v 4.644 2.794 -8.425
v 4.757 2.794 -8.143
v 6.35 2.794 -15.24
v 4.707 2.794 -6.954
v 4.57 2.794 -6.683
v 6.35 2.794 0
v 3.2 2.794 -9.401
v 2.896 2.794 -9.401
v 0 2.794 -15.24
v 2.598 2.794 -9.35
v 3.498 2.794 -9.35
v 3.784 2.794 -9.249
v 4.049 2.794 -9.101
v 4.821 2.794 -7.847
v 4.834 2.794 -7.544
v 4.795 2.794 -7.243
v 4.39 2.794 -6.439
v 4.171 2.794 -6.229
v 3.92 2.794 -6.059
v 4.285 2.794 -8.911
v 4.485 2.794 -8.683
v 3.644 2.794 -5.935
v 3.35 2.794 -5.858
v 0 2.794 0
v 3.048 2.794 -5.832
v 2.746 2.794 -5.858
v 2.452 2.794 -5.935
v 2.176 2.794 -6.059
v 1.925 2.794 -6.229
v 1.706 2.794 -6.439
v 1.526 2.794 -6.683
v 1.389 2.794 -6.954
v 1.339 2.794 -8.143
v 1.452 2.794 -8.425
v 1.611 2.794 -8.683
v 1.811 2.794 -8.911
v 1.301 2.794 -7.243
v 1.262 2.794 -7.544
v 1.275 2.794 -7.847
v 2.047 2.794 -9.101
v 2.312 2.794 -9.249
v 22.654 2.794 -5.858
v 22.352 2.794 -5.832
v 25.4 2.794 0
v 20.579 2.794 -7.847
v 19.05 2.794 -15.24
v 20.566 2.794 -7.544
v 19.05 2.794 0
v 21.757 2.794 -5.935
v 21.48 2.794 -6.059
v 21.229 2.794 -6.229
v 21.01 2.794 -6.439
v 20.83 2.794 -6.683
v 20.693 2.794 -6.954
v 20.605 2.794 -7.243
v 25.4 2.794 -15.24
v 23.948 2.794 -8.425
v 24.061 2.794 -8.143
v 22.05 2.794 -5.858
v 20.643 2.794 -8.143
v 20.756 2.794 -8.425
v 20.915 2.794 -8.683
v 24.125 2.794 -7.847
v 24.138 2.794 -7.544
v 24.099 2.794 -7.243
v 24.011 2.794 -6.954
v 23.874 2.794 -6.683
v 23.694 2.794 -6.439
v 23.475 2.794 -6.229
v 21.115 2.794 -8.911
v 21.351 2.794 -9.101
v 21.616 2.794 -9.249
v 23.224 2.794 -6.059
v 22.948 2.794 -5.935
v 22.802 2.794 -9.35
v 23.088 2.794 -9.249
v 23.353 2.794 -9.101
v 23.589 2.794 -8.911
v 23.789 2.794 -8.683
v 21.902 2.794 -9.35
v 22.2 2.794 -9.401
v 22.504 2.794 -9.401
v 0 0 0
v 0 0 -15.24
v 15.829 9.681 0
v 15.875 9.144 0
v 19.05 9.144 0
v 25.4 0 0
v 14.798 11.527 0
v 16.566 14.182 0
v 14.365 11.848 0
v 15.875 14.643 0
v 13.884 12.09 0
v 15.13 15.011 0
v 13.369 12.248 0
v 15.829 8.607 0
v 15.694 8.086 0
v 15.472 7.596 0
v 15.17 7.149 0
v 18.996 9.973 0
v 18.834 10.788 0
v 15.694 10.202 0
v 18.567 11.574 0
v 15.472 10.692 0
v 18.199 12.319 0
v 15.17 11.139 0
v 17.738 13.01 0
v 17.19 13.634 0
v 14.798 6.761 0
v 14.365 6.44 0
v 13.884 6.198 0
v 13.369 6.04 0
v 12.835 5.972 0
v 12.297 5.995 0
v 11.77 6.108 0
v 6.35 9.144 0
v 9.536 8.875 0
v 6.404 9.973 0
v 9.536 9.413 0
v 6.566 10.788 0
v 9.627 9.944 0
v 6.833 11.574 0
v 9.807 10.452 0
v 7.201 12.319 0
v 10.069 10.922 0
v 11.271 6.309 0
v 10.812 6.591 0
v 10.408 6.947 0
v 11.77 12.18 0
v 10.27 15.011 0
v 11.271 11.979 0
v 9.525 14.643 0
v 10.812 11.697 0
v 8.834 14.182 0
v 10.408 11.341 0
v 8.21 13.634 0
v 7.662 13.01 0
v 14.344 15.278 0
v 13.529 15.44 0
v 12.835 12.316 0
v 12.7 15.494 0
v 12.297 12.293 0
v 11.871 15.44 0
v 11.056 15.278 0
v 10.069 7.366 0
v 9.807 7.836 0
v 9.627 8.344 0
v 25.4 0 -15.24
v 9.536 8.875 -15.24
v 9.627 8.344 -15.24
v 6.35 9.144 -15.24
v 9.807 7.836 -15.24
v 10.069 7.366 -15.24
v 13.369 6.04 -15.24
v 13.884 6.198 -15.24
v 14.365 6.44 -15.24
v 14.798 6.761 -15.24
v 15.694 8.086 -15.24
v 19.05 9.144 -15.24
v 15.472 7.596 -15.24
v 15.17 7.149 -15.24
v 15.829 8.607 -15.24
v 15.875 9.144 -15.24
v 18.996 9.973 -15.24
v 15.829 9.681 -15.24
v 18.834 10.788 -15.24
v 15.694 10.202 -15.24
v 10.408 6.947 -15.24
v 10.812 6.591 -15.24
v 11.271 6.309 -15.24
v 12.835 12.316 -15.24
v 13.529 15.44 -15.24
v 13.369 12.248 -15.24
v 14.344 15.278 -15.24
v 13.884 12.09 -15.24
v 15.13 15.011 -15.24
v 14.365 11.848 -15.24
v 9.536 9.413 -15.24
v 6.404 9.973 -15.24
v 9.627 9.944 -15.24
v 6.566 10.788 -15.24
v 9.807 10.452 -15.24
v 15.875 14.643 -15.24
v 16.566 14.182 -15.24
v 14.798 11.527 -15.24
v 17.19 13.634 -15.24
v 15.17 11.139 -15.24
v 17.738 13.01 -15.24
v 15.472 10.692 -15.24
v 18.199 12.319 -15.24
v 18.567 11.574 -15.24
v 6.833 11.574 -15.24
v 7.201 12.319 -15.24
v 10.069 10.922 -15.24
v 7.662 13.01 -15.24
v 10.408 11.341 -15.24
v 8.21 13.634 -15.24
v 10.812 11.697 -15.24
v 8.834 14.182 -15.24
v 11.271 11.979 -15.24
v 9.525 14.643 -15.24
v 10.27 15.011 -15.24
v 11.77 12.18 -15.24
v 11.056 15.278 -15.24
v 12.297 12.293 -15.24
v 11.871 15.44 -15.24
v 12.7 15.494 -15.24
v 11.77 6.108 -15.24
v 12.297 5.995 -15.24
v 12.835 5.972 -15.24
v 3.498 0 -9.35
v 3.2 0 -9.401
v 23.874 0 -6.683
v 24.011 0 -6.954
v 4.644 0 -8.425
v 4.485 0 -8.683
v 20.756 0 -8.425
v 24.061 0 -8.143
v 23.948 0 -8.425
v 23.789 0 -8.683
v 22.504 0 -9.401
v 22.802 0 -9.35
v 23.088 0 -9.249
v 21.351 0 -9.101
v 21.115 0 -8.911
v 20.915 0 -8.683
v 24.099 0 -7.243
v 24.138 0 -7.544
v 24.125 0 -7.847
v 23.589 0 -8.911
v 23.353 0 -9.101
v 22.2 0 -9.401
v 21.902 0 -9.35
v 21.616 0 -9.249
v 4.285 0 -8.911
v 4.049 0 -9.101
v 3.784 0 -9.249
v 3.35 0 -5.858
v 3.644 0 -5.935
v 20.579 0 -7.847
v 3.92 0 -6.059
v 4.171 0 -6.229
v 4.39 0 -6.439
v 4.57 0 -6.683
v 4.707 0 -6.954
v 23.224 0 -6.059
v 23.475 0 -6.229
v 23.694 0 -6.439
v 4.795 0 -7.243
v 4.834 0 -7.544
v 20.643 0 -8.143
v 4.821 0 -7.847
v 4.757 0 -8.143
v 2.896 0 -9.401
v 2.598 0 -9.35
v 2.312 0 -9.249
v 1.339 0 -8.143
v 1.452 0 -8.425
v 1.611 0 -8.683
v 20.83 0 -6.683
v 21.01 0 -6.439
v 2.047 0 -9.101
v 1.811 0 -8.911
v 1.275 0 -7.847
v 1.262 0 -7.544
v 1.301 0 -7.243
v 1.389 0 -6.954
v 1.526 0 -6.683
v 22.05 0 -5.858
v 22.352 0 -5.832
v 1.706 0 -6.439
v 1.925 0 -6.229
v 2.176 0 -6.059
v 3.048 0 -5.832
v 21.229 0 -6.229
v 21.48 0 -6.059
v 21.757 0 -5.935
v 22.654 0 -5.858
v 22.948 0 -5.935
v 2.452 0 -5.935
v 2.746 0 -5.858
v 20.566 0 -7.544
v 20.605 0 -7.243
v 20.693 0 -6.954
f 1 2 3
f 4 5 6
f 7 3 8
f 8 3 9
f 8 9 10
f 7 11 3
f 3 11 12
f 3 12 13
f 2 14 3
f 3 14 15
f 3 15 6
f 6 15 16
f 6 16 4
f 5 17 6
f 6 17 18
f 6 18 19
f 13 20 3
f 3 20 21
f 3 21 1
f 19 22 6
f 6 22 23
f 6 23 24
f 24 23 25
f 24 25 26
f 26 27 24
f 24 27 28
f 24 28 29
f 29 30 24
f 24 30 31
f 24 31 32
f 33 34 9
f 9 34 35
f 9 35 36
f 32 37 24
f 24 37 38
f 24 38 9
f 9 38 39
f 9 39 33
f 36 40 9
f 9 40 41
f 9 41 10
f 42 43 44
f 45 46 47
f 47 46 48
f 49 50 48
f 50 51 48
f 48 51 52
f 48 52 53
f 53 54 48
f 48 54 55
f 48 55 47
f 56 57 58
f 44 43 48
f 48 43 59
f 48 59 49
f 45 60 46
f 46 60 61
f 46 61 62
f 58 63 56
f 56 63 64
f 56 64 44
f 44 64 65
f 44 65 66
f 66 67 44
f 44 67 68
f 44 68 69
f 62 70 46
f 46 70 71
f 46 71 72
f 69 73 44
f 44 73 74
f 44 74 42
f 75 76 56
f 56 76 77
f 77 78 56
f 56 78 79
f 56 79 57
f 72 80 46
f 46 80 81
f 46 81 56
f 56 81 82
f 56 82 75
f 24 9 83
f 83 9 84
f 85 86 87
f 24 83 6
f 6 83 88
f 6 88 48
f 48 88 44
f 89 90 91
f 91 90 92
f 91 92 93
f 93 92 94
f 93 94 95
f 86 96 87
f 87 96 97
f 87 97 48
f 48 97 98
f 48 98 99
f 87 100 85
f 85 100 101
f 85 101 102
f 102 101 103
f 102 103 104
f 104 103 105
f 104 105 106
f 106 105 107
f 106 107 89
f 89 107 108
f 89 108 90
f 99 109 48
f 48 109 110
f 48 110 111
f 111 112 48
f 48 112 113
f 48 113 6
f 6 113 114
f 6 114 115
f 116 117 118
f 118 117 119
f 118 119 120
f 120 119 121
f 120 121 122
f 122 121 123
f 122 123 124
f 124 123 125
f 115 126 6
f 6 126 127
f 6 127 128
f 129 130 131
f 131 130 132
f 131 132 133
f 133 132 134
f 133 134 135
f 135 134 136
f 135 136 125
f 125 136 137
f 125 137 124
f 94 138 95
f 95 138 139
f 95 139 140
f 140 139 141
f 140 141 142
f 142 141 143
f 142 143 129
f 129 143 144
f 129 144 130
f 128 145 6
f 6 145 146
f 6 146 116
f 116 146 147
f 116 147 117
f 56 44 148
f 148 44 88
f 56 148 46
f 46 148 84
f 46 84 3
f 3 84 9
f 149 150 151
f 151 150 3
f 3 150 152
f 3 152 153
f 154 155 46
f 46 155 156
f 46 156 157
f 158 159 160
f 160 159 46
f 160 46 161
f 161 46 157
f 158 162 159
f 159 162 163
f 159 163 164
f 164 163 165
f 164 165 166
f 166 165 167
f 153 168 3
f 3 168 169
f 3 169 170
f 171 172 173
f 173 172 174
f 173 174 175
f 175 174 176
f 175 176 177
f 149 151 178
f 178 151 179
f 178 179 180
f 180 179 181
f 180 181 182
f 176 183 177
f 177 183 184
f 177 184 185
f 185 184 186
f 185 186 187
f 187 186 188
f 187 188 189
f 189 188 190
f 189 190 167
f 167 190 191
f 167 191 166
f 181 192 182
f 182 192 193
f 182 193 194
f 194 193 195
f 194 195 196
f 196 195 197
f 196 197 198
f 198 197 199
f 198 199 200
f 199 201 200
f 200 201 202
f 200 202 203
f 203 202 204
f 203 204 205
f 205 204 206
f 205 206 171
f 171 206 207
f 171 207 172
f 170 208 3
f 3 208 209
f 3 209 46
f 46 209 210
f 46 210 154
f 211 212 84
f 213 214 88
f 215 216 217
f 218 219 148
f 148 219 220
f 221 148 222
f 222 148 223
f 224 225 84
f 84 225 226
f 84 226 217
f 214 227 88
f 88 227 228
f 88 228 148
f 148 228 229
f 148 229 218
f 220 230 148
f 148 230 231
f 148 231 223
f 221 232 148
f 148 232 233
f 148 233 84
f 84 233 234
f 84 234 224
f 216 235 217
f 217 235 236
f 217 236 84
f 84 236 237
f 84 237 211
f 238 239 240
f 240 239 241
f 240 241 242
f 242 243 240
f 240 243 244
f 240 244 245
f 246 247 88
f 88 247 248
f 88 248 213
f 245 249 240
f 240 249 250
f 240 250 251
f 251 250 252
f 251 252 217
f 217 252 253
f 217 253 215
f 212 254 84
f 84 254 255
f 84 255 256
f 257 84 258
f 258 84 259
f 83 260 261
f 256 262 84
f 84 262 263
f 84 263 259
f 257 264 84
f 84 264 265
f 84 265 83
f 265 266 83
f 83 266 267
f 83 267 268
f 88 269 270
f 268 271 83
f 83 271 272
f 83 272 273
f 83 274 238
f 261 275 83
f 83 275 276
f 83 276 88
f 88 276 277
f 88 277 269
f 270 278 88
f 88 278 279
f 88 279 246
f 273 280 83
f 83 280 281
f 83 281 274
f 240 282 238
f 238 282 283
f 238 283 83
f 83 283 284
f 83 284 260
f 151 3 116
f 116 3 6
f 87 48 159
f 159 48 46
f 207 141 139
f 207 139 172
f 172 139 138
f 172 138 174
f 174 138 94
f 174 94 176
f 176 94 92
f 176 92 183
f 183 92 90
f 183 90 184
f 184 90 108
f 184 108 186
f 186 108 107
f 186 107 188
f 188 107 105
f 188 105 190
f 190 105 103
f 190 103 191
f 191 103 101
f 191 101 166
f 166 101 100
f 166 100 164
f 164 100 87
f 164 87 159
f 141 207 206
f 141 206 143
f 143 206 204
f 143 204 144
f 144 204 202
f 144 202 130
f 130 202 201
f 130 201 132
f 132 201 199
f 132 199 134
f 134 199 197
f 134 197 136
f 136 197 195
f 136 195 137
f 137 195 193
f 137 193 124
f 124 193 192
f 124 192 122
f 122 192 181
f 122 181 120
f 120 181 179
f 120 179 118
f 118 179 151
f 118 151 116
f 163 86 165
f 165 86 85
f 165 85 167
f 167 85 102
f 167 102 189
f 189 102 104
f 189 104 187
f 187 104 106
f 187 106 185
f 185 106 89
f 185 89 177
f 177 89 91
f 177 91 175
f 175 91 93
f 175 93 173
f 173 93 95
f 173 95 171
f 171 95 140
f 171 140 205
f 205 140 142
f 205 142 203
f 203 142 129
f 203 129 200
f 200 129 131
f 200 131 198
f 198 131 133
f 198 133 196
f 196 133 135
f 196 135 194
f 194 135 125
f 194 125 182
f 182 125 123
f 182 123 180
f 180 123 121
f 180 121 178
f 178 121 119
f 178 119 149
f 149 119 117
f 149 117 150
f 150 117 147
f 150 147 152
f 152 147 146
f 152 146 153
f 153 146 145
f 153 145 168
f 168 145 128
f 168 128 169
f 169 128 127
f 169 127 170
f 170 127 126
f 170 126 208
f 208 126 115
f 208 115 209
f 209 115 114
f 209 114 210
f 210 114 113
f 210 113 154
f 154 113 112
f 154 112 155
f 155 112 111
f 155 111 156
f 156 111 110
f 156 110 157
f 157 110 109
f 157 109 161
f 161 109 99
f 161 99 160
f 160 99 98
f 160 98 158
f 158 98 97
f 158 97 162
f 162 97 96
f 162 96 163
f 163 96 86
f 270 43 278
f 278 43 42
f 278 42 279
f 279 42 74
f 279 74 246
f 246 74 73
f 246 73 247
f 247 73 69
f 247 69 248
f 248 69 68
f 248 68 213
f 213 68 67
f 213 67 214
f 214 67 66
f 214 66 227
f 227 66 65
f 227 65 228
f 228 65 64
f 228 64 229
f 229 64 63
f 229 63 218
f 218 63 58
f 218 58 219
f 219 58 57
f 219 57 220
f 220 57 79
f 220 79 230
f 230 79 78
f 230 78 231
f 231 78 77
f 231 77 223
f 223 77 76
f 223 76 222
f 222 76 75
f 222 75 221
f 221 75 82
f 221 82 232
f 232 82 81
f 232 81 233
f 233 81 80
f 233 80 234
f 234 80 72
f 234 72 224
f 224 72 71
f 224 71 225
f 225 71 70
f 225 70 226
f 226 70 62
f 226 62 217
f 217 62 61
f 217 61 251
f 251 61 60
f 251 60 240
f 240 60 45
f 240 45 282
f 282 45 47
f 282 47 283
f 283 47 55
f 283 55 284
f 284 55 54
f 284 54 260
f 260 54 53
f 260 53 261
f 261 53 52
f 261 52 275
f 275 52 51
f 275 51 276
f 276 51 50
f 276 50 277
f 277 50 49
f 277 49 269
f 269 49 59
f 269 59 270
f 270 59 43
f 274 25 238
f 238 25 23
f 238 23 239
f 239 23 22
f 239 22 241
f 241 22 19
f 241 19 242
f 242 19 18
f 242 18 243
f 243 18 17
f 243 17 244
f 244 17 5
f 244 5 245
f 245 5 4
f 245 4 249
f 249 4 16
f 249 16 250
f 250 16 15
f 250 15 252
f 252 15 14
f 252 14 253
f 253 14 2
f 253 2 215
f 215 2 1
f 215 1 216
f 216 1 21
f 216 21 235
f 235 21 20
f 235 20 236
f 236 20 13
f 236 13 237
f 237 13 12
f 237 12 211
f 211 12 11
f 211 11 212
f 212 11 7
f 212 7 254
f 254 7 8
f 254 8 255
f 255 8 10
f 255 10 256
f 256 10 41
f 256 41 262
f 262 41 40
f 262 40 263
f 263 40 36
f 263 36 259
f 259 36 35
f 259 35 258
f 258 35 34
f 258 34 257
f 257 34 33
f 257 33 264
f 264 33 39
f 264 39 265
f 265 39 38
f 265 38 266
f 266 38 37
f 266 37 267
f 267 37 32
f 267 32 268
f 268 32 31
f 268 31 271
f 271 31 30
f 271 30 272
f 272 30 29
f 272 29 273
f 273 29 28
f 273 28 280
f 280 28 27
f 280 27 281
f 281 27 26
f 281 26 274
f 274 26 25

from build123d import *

# Parameters (mm, degrees)
SKETCH1_W           = 25.4
SKETCH1_H           = 15.24
BOSS_EXTRUDE1_DEPTH = 2.794
SKETCH2_W           = 12.7
SKETCH2_H           = 15.24
BOSS_EXTRUDE2_DEPTH = 12.7
FILLET1_R           = 6.35
SKETCH3_R           = 3.175
CUT_EXTRUDE1_DEPTH  = 34.428754628
SKETCH4_R           = 1.787540604
CUT_EXTRUDE2_DEPTH  = 33.228986953


with BuildPart() as part:
    # Sketch1 → Boss-Extrude1 (new body)
    with BuildSketch(Plane(origin=(0, 0, 0), x_dir=(1, 0, 0), z_dir=(0, 1, 0))):
        with Locations((12.7, 7.62)):
            Rectangle(SKETCH1_W, SKETCH1_H)
    extrude(amount=BOSS_EXTRUDE1_DEPTH)

    # Sketch2 → Boss-Extrude2 (add)
    with BuildSketch(Plane(origin=(0, 2.794, 0), x_dir=(1, 0, 0), z_dir=(0, 1, 0))):
        with Locations((12.7, 7.62)):
            Rectangle(SKETCH2_W, SKETCH2_H)
    extrude(amount=BOSS_EXTRUDE2_DEPTH)

    # Fillet1
    fillet1_edges = [part.edges().sort_by_distance(p)[0] for p in [
        (6.35, 15.494, -7.62),
        (19.05, 15.494, -7.62),
    ]]
    fillet(fillet1_edges, radius=FILLET1_R - 0.0001)  # a hair under: the kernel refuses the full size

    # Sketch3 → Cut-Extrude1 (cut, through all)
    with BuildSketch(Plane.XY):
        with Locations((12.7, 9.144)):
            Circle(SKETCH3_R)
    extrude(amount=-CUT_EXTRUDE1_DEPTH, mode=Mode.SUBTRACT)

    # Sketch4 → Cut-Extrude2 (cut, through all)
    with BuildSketch(Plane(origin=(0, 2.794, 0), x_dir=(1, 0, 0), z_dir=(0, 1, 0))):
        with Locations(Location((3.048, 7.62, 0), (0, 0, 270))):
            Circle(SKETCH4_R)
        with Locations(Location((22.352, 7.62, 0), (0, 0, 270))):
            Circle(SKETCH4_R)
    extrude(amount=-CUT_EXTRUDE2_DEPTH, mode=Mode.SUBTRACT)


solid = part.part
